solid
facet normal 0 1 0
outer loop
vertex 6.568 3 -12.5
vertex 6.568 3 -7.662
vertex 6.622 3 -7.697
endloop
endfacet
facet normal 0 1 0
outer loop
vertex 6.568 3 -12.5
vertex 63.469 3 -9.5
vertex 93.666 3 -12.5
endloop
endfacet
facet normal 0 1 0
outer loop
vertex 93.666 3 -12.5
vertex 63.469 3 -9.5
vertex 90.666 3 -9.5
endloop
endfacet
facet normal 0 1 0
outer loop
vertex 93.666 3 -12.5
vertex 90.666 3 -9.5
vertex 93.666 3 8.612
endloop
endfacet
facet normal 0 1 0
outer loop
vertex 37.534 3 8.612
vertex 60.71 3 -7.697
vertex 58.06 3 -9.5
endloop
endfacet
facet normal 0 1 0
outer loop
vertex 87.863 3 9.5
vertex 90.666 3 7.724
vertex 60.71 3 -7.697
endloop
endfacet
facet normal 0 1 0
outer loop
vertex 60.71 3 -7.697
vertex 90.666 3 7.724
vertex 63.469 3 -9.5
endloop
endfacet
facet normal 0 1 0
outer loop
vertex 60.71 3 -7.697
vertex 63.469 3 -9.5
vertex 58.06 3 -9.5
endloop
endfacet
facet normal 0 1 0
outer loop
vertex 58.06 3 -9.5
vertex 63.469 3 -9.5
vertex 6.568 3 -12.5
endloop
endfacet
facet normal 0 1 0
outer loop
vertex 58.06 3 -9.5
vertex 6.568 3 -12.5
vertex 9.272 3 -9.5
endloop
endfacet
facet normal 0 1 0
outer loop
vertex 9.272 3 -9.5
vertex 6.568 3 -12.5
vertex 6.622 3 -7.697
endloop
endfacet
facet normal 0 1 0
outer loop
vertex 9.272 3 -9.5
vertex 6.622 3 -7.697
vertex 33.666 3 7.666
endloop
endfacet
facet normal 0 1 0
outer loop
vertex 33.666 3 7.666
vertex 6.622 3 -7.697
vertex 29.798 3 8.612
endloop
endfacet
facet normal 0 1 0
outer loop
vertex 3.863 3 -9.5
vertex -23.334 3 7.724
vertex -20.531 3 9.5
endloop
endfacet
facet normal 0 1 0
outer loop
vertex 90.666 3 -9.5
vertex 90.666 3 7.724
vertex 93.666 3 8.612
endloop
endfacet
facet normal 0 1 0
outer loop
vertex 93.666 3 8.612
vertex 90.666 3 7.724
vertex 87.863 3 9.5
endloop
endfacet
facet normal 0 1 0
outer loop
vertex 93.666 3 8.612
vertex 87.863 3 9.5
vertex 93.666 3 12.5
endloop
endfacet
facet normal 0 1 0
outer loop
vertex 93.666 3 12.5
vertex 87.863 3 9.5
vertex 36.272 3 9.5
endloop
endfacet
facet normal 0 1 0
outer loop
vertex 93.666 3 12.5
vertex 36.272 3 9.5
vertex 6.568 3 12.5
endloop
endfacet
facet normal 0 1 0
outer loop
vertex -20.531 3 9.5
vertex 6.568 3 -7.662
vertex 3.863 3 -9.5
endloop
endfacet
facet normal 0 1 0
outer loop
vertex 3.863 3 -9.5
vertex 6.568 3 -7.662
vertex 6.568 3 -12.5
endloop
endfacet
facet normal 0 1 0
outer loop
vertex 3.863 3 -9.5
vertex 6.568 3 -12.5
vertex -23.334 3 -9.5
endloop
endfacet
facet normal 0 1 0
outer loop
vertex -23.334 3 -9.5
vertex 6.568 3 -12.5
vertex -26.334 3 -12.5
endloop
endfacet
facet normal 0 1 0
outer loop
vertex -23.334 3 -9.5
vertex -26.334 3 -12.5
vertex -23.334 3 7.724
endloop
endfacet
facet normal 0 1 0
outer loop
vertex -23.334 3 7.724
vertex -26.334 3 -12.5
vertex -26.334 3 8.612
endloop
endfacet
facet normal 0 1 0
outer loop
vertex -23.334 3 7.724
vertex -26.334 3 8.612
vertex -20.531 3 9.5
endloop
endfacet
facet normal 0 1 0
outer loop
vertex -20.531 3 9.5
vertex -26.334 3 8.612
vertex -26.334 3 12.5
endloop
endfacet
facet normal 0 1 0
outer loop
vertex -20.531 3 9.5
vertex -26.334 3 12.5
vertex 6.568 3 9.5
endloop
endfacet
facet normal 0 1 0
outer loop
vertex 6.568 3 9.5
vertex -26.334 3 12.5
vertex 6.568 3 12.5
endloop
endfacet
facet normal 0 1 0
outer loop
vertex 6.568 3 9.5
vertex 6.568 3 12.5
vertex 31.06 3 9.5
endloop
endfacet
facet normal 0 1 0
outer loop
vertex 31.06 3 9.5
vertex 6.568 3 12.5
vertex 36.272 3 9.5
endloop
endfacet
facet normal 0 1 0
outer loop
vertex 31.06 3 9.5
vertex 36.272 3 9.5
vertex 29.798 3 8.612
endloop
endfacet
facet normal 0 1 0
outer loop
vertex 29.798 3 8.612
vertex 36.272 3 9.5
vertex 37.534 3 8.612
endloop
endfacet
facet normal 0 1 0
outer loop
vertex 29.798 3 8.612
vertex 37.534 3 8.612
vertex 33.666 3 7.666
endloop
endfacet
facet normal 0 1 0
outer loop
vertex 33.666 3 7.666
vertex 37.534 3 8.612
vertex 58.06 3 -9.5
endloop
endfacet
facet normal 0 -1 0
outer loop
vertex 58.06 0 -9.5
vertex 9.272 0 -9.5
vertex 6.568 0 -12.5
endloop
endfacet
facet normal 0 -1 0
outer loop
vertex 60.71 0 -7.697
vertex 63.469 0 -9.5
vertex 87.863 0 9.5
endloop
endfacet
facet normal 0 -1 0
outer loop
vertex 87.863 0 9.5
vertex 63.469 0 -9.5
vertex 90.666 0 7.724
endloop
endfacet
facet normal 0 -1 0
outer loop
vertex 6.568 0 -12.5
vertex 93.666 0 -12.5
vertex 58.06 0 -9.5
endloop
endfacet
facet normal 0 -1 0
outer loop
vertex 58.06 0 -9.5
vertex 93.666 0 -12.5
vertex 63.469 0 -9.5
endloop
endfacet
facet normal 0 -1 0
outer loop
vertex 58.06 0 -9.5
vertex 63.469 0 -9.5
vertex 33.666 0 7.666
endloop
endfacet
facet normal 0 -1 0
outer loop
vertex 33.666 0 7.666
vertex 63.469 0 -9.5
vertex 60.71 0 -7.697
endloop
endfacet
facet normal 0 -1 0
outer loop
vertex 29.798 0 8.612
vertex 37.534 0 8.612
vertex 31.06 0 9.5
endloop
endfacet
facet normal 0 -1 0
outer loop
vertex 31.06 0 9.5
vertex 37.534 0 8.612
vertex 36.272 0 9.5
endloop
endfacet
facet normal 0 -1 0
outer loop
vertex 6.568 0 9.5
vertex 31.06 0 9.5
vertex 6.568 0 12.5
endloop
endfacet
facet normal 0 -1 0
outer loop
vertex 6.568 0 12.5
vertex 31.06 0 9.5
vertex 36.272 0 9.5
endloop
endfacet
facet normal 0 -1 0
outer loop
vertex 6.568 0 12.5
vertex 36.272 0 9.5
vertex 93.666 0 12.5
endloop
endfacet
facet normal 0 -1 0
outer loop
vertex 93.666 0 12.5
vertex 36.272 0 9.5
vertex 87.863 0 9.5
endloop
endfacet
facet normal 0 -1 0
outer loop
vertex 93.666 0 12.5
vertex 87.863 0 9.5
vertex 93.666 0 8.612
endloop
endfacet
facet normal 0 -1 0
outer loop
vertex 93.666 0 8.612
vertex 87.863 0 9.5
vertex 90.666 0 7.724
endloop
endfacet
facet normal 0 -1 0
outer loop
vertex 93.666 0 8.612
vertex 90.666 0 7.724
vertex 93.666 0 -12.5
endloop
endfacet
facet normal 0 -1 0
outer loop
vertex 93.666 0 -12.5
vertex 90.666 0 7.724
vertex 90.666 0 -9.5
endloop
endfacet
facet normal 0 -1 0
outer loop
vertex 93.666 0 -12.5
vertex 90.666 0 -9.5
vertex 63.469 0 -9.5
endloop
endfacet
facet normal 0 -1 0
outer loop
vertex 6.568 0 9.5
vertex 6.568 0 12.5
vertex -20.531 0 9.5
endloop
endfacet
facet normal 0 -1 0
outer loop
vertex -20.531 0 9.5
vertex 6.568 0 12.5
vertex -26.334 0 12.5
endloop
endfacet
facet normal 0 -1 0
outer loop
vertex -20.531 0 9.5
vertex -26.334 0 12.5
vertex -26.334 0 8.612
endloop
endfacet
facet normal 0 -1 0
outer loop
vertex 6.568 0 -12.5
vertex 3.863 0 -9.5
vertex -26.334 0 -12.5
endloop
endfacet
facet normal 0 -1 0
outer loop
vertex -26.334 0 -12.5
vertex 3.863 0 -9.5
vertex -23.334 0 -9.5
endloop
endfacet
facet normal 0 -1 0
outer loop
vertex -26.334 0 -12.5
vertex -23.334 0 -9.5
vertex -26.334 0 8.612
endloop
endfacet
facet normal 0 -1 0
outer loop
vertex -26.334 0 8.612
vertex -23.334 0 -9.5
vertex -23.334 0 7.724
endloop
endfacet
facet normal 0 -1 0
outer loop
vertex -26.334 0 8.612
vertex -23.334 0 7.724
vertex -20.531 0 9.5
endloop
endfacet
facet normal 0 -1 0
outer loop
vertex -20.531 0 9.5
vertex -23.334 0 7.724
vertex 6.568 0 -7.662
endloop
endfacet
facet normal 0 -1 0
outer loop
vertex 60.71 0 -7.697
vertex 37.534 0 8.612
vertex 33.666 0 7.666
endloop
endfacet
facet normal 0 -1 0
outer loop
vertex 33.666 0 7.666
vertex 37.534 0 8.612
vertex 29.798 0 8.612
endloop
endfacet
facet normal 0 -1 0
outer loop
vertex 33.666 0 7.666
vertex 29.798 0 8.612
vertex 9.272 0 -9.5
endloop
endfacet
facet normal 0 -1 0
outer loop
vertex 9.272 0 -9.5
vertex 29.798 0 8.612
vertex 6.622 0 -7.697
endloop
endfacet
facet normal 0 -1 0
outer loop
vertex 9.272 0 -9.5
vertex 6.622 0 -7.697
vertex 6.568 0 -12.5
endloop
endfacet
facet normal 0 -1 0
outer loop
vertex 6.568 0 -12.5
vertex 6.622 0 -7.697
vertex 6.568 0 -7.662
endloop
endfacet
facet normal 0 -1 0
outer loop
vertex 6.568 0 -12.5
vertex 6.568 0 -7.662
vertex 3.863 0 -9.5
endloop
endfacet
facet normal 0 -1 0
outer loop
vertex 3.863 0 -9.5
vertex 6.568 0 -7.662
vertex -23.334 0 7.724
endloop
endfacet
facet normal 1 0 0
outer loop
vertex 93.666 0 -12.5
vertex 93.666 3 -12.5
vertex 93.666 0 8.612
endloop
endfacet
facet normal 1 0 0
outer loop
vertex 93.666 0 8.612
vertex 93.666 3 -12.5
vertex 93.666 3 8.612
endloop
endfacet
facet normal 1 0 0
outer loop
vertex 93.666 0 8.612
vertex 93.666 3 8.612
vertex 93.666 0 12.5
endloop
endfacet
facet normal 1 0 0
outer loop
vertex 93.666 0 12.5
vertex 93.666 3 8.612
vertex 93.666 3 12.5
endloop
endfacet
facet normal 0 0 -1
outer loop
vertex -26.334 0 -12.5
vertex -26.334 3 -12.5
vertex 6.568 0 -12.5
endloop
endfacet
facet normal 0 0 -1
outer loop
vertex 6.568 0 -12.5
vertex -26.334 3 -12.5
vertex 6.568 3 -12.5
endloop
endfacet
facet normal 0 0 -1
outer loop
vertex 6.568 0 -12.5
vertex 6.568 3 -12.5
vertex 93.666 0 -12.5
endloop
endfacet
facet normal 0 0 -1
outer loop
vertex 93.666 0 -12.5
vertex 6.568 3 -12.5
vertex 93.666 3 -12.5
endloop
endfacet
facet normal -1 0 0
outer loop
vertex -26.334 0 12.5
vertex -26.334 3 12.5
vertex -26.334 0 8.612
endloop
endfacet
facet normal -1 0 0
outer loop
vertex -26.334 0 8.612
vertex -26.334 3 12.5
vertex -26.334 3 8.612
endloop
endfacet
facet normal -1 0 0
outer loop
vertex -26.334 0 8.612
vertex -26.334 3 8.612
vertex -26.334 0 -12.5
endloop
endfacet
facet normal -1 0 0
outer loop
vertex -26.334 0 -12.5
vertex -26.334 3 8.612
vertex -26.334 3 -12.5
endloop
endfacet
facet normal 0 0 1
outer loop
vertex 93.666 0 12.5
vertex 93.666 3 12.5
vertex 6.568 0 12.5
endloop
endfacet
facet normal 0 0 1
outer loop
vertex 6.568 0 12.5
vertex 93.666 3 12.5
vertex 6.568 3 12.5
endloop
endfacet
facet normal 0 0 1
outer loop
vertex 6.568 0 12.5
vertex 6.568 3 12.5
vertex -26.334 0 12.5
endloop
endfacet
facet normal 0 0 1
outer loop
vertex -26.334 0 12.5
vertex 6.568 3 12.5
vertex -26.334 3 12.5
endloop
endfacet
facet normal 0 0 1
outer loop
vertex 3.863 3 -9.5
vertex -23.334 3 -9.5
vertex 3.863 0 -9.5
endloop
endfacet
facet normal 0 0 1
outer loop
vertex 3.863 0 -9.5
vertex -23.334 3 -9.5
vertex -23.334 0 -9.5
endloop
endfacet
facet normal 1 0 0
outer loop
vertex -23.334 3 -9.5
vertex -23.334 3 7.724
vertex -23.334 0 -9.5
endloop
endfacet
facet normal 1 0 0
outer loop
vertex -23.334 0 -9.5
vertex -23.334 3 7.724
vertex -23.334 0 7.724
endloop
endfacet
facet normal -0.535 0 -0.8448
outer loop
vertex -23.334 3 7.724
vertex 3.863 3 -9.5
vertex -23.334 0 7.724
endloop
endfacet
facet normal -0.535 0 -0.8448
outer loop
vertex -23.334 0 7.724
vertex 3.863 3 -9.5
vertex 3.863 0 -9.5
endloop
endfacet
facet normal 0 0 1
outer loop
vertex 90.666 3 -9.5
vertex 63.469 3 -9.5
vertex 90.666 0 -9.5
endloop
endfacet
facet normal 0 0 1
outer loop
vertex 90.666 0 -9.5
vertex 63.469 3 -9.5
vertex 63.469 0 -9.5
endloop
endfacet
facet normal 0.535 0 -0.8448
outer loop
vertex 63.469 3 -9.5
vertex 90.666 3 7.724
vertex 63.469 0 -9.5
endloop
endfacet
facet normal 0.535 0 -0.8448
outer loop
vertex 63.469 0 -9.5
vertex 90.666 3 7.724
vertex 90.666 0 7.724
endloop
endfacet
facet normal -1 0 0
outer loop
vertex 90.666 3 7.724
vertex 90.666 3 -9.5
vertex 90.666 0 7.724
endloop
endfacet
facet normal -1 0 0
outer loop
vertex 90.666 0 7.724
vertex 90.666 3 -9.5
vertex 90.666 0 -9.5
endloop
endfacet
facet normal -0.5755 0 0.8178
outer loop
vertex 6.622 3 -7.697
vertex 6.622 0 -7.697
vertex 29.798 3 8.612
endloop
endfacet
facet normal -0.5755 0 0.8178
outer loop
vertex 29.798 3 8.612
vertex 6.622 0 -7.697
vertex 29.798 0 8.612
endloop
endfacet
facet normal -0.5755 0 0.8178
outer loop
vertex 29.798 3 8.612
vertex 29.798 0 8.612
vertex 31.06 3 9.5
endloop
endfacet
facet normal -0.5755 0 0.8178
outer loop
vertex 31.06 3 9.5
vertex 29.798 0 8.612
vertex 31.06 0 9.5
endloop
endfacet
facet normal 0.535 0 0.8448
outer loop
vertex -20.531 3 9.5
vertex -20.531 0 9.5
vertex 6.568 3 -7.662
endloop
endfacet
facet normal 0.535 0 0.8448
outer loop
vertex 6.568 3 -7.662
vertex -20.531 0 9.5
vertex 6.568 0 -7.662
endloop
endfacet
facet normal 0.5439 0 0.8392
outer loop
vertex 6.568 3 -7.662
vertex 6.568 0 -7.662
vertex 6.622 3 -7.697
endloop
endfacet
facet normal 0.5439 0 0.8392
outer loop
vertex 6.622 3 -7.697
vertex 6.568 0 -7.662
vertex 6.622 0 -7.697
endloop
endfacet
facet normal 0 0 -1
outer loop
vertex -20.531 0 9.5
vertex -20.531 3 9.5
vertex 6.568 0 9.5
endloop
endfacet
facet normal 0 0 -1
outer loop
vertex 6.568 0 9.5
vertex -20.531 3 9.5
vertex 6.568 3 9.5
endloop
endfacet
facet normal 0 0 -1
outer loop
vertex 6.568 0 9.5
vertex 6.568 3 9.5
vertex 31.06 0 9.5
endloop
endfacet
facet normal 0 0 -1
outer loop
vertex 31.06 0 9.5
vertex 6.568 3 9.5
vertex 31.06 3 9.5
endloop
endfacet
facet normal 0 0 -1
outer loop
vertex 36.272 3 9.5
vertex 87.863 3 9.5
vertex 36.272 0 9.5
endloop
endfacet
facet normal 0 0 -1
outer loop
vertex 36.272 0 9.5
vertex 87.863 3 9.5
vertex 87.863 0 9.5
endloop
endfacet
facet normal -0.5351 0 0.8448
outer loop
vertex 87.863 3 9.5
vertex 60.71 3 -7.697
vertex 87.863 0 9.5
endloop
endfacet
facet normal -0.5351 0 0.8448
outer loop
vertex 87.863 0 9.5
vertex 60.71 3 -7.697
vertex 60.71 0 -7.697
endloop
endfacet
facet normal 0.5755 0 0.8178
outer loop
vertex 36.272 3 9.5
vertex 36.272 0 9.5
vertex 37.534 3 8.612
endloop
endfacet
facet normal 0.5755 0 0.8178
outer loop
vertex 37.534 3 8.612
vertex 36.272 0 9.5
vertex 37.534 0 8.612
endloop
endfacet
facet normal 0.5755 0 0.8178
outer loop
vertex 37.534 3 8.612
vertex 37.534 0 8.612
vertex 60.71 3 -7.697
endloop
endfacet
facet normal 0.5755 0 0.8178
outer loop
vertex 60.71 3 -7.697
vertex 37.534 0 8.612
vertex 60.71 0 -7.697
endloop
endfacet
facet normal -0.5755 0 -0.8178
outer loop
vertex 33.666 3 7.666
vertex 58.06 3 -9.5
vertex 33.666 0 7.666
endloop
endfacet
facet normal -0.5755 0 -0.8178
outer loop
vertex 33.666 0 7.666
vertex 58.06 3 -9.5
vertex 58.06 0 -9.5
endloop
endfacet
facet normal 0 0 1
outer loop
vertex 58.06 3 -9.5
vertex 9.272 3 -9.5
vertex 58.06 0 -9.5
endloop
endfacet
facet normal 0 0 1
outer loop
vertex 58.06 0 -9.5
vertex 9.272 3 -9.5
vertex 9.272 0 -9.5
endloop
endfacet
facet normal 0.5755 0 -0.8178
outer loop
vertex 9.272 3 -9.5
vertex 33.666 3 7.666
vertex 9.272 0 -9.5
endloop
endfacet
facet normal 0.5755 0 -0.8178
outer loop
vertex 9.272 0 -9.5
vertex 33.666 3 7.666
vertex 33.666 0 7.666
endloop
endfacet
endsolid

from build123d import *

# Parameters (mm, degrees)
SKETCH1_W           = 120
SKETCH1_H           = 25
BOSS_EXTRUDE1_DEPTH = 3


with BuildPart() as part:
    # Sketch1 → Boss-Extrude1 (new body)
    with BuildSketch(Plane(origin=(0, 0, 0), x_dir=(1, 0, 0), z_dir=(0, 1, 0))):
        with Locations((33.666007905, 0)):
            Rectangle(SKETCH1_W, SKETCH1_H)
        Polygon((-23.333992095, -7.72447191), (-23.333992095, 9.5), (3.862542499, 9.5), align=None, mode=Mode.SUBTRACT)
        Polygon((90.666007905, -7.72447191), (90.666007905, 9.5), (63.469473311, 9.5), align=None, mode=Mode.SUBTRACT)
        Polygon((-20.530526689, -9.5), (31.059548849, -9.5), (6.622144647, 7.696691846), align=None, mode=Mode.SUBTRACT)
        Polygon((60.709871163, 7.696691846), (36.272466961, -9.5), (87.862542499, -9.5), align=None, mode=Mode.SUBTRACT)
        Polygon((9.272466961, 9.5), (58.059548849, 9.5), (33.666007905, -7.665825109), align=None, mode=Mode.SUBTRACT)
    extrude(amount=BOSS_EXTRUDE1_DEPTH)


solid = part.part
